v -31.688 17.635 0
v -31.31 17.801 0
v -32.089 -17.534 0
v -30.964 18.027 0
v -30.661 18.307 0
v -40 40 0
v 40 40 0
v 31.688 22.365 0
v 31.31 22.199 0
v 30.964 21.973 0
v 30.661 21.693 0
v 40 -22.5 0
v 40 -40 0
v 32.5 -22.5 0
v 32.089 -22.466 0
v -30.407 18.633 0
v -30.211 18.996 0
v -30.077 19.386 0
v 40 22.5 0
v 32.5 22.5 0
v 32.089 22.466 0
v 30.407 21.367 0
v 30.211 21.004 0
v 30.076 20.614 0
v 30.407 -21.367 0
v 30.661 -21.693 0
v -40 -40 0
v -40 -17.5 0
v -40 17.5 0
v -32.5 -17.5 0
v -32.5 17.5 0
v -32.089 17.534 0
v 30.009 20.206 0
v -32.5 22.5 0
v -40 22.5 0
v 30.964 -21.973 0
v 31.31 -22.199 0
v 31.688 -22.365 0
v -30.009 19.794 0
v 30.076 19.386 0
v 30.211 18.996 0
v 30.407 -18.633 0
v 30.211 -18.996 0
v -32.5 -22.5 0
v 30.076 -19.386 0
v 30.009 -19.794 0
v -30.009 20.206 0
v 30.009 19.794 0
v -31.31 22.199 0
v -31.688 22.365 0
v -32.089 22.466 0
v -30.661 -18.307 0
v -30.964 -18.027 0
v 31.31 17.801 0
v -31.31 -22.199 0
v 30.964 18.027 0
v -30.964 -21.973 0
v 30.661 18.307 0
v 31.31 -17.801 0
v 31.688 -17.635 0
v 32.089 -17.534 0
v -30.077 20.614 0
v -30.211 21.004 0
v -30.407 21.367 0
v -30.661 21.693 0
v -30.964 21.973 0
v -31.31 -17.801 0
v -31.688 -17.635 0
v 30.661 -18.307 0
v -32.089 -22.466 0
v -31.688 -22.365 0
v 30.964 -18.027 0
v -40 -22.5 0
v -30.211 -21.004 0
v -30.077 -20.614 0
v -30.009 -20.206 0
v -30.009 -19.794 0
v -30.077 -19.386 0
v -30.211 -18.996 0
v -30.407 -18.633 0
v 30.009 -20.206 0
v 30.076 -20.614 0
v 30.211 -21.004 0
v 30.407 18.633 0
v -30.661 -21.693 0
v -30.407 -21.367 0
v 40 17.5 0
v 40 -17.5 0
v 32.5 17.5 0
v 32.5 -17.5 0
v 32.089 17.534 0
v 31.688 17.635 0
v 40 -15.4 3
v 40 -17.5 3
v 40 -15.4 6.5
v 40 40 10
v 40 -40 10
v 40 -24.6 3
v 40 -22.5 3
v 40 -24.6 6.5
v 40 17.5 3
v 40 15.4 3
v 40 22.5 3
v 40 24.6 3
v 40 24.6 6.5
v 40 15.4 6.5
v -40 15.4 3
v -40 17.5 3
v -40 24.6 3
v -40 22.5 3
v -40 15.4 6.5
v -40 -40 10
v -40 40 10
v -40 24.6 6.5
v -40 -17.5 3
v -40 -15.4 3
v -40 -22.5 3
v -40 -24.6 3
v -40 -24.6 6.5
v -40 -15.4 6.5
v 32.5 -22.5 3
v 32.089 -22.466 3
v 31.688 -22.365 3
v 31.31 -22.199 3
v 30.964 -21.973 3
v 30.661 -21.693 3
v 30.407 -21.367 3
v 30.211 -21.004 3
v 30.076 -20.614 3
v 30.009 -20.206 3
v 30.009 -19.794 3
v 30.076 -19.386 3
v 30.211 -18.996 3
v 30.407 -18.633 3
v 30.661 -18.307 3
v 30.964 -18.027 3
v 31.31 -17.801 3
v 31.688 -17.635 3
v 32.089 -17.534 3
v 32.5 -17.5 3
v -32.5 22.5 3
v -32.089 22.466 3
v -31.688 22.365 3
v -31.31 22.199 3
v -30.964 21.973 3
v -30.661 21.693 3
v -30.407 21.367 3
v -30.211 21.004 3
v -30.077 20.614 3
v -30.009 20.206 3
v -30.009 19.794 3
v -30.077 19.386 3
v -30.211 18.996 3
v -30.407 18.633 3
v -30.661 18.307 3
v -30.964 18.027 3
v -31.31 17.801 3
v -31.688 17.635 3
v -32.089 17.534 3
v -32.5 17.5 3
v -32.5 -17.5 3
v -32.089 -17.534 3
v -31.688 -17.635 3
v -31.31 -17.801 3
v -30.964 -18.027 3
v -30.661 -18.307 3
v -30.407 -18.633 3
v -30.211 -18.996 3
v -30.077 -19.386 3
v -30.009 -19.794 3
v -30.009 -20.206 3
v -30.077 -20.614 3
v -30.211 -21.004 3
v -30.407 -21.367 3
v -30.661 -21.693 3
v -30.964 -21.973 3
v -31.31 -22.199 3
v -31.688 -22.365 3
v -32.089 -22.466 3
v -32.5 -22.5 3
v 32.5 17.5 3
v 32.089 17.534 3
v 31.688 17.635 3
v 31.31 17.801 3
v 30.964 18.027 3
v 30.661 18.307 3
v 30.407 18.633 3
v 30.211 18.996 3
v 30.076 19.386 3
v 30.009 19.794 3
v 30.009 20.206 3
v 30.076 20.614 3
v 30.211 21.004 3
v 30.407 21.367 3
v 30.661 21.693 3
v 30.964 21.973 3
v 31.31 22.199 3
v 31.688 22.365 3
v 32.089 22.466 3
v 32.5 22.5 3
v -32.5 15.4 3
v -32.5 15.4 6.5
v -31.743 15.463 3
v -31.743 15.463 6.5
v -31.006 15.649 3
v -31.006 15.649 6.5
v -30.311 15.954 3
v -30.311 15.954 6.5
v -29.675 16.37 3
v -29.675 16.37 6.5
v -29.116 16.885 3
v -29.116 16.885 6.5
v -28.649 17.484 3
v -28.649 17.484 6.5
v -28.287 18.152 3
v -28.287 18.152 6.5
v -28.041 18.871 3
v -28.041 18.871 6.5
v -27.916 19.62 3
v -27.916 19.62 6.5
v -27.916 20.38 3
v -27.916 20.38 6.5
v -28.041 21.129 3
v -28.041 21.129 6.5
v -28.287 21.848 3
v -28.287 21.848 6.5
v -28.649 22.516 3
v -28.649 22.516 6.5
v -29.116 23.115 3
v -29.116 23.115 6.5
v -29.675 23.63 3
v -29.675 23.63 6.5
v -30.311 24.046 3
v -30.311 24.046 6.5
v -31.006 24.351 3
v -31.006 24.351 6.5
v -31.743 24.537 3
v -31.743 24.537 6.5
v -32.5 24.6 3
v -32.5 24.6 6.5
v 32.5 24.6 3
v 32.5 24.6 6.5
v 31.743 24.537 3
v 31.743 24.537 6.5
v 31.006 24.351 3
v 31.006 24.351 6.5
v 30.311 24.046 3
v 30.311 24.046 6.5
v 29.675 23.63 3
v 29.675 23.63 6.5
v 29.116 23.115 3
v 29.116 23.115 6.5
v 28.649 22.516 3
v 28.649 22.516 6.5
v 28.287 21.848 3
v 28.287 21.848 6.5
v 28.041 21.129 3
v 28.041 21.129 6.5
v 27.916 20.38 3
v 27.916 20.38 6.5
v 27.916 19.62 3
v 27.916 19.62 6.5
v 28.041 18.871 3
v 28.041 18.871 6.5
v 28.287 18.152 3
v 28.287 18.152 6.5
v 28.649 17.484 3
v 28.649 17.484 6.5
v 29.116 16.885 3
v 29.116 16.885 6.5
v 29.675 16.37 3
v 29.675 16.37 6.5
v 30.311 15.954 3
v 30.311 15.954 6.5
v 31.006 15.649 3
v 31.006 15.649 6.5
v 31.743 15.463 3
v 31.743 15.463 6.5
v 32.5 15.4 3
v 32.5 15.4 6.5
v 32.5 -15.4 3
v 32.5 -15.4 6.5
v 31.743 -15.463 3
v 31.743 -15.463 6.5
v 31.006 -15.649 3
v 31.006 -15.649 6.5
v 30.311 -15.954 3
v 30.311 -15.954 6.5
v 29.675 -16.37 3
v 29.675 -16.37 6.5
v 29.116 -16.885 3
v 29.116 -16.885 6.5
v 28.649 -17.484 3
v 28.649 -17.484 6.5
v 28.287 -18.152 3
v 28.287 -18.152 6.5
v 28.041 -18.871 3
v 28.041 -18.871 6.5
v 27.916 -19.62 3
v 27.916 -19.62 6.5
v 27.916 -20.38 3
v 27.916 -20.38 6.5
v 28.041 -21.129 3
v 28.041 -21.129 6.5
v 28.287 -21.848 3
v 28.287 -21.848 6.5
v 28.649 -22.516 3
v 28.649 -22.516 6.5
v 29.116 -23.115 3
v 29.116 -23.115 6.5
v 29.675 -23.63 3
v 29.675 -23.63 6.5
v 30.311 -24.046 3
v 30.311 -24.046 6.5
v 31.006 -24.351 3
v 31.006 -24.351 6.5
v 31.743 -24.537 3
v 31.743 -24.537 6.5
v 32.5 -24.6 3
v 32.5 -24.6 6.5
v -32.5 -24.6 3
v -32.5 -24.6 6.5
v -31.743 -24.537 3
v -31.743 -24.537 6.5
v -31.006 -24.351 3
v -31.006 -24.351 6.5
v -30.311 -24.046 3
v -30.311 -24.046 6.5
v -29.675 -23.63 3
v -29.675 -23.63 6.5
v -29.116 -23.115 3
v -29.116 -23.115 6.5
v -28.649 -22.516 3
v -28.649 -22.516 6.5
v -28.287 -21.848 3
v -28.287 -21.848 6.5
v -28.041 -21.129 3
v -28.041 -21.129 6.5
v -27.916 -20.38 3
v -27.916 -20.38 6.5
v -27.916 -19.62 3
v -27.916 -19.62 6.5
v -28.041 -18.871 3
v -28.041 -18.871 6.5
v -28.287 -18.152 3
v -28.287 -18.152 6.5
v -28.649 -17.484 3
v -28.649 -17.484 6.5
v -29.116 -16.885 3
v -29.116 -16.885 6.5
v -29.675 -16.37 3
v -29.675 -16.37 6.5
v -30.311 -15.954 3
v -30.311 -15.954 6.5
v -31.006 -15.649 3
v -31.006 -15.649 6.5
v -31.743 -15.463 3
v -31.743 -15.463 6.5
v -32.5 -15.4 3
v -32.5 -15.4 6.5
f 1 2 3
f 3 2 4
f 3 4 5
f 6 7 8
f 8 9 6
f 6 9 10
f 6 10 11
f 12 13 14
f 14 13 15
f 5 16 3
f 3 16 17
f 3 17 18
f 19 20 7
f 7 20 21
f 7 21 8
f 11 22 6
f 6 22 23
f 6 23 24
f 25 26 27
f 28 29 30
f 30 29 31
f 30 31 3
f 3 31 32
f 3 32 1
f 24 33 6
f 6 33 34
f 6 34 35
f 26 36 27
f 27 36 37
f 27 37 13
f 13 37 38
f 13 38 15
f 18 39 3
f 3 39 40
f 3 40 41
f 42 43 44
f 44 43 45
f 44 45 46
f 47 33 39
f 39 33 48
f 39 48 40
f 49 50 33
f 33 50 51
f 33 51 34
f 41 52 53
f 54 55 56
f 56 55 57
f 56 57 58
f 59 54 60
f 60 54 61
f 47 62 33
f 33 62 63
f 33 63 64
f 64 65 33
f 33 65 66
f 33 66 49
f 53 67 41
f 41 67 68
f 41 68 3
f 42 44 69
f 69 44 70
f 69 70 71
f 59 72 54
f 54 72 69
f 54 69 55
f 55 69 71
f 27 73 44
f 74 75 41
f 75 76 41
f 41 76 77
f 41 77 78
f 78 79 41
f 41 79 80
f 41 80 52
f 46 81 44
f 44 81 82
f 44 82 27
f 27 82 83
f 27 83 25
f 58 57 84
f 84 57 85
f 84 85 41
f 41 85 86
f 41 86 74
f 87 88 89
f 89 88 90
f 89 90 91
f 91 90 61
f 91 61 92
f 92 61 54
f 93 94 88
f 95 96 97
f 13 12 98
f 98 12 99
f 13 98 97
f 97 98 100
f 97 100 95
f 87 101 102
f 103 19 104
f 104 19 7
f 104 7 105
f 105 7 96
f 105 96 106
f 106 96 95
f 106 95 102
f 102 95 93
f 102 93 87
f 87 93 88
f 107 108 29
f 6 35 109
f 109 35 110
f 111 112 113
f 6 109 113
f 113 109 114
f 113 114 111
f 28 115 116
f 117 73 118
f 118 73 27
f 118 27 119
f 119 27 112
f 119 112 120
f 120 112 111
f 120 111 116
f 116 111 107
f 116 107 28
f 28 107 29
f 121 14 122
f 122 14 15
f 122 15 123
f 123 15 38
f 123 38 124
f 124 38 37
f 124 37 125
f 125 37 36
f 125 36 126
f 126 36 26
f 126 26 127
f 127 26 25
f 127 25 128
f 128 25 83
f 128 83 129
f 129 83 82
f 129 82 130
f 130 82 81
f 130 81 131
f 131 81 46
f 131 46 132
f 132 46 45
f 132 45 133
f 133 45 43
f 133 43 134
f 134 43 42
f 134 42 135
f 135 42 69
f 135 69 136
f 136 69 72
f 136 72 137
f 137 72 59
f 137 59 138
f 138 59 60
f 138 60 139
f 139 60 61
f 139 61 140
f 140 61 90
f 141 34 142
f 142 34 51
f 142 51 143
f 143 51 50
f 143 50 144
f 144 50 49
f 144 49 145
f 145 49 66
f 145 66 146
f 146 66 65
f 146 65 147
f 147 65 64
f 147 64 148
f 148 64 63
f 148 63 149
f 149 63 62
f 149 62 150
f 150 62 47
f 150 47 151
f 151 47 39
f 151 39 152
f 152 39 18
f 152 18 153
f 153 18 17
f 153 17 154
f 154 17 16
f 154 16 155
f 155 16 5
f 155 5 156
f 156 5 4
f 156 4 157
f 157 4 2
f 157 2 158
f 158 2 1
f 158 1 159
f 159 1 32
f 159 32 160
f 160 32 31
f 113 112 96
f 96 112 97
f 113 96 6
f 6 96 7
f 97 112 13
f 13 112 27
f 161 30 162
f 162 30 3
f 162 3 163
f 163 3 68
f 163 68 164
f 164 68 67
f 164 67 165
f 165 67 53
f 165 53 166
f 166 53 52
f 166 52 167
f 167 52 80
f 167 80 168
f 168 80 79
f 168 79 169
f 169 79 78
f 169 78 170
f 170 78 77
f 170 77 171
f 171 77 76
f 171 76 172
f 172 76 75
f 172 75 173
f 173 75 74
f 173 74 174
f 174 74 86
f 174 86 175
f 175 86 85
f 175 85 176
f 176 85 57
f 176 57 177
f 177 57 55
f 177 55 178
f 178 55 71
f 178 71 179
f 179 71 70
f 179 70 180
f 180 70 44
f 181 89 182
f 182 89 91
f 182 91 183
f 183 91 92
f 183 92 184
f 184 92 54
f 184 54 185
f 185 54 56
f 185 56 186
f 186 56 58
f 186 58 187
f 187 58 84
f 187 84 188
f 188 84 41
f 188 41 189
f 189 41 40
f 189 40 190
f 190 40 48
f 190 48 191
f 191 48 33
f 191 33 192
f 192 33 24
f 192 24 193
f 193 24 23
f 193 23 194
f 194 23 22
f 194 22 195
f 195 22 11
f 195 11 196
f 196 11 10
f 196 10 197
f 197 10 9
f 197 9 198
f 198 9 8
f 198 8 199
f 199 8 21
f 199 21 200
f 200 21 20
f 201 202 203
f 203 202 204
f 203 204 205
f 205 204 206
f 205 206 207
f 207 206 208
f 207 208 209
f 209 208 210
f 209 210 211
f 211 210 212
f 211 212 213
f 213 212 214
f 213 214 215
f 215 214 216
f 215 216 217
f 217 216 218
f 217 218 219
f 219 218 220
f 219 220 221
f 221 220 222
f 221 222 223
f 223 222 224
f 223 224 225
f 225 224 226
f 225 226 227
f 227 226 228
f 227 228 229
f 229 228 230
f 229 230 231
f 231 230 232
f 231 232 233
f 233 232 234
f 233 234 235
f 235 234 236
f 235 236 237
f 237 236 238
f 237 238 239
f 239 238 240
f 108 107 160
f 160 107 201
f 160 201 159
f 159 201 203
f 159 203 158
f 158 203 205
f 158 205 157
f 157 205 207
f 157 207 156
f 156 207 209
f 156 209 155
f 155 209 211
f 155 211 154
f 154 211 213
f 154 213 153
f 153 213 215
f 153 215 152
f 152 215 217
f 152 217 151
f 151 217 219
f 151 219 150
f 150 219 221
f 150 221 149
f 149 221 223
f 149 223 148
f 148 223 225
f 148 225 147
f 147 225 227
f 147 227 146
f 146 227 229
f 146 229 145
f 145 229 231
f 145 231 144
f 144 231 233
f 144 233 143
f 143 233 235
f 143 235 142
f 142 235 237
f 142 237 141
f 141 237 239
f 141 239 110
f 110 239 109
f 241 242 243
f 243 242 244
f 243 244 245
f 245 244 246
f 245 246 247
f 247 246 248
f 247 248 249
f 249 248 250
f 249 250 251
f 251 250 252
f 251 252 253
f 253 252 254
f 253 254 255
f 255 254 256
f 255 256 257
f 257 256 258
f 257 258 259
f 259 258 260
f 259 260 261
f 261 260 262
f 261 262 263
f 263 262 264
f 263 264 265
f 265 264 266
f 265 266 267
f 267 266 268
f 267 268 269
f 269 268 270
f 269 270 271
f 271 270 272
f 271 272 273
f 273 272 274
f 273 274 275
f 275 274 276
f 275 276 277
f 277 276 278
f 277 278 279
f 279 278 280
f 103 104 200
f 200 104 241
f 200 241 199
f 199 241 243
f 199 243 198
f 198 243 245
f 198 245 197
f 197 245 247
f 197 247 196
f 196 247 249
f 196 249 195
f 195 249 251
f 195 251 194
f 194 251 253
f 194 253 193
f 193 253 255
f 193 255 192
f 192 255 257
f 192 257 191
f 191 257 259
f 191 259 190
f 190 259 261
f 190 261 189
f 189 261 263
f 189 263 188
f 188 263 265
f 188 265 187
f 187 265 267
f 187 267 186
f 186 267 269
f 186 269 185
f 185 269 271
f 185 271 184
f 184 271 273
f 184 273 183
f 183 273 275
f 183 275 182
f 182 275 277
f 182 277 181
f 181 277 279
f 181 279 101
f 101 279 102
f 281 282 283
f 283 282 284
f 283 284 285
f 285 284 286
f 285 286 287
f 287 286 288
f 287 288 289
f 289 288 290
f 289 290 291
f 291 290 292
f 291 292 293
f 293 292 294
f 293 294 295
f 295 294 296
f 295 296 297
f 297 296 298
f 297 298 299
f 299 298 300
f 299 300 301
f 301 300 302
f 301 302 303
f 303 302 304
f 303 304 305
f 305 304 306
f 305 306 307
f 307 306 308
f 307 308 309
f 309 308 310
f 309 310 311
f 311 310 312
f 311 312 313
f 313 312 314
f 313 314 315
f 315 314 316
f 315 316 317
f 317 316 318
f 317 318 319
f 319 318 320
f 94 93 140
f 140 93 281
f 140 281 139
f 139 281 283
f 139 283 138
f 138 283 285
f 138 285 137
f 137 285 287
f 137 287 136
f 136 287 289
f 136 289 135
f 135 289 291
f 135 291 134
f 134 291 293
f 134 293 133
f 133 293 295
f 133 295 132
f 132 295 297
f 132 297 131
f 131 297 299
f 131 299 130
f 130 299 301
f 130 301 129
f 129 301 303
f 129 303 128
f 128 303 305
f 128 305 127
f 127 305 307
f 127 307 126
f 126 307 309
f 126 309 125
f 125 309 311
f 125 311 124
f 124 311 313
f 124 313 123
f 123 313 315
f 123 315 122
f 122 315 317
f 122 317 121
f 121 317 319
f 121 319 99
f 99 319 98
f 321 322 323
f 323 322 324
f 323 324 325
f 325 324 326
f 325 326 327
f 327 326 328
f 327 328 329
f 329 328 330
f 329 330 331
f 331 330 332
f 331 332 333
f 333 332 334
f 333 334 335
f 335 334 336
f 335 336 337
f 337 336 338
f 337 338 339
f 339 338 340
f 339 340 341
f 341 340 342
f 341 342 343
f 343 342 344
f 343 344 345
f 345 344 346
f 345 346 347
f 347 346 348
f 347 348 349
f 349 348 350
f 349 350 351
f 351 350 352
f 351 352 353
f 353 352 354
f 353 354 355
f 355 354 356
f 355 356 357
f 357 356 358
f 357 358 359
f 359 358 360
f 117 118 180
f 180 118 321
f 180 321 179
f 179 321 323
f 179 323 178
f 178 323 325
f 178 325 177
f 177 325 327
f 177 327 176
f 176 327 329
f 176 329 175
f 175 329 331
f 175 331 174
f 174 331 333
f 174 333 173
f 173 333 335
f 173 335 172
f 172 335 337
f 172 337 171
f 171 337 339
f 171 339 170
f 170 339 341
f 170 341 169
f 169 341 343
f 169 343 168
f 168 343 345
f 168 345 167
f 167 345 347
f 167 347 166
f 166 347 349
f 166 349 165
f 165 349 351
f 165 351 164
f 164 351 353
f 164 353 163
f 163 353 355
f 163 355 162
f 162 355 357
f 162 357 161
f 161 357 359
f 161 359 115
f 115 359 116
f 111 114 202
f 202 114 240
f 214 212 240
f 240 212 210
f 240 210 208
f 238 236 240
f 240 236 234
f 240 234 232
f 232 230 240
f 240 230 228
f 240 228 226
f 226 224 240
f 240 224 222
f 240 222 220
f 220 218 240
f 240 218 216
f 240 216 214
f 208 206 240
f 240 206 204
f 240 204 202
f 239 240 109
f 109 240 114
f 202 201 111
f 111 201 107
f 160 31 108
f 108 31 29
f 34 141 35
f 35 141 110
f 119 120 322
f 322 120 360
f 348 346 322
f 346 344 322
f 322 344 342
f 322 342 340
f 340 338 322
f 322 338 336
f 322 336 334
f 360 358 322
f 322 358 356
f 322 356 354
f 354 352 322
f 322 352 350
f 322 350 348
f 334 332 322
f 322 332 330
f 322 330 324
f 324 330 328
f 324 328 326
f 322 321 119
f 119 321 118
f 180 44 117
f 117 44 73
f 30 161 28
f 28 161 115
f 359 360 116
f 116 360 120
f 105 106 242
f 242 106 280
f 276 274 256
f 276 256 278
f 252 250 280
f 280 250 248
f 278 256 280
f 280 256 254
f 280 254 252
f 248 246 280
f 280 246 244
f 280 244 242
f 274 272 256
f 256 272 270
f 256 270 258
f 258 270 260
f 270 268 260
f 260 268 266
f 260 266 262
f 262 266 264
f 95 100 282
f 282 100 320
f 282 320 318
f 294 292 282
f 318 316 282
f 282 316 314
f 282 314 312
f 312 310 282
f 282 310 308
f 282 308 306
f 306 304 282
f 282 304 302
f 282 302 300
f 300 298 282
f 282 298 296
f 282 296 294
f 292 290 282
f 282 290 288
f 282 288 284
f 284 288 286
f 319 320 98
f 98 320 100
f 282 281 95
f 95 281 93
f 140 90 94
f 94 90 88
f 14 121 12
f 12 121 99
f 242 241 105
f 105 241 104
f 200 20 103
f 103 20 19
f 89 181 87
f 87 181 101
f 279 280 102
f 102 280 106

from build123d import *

# Parameters (mm, degrees)
ESQUISSE1_W             = 80
ESQUISSE1_H             = 80
ESQUISSE1_R             = 2.5
BOSS_EXTRU_1_DEPTH      = 10
ESQUISSE2_R             = 4.6
ENL_V_MAT_EXTRU_1_DEPTH = 7
ENL_V_MAT_EXTRU_2_DEPTH = 7.5
ESQUISSE5_R             = 4.6
BOSS_EXTRU_2_DEPTH      = 3.5
SYM_TRIE4_COPY_1_DEPTH  = 7.5


with BuildPart() as part:
    # Esquisse1 → Boss.-Extru.1 (new body)
    with BuildSketch(Plane.XY):
        Rectangle(ESQUISSE1_W, ESQUISSE1_H)
        with Locations((-32.5, 20)):
            Circle(ESQUISSE1_R, mode=Mode.SUBTRACT)
        with Locations((-32.5, -20)):
            Circle(ESQUISSE1_R, mode=Mode.SUBTRACT)
        with Locations((32.5, -20)):
            Circle(ESQUISSE1_R, mode=Mode.SUBTRACT)
        with Locations((32.5, 20)):
            Circle(ESQUISSE1_R, mode=Mode.SUBTRACT)
    extrude(amount=BOSS_EXTRU_1_DEPTH)

    # Esquisse2 → Enlèv. mat.-Extru.1 (cut)
    with BuildSketch(Plane.XY.offset(10)):
        with Locations((-32.5, 20)):
            Circle(ESQUISSE2_R)
        with Locations(Location((-32.5, -20, 0), (0, 0, 180))):
            Circle(ESQUISSE2_R)
        with Locations((32.5, -20)):
            Circle(ESQUISSE2_R)
        with Locations(Location((32.5, 20, 0), (0, 0, 180))):
            Circle(ESQUISSE2_R)
    extrude(amount=-ENL_V_MAT_EXTRU_1_DEPTH, mode=Mode.SUBTRACT)

    # Esquisse4 → Enlèv. mat.-Extru.2 (cut)
    with BuildSketch(Plane.ZY.offset(40)):
        Polygon((6.5, 24.6), (6.5, 15.4), (3, 15.4), (3, 17.5), (0, 17.5), (0, 22.5), (3, 22.5), (3, 24.6), align=None)
    enl_v_mat_extru_2 = extrude(amount=-ENL_V_MAT_EXTRU_2_DEPTH, mode=Mode.SUBTRACT)

    # Symétrie1: Enlèv. mat.-Extru.2 across plane
    add(enl_v_mat_extru_2.mirror(Plane.ZX), mode=Mode.SUBTRACT)

    # Esquisse5 → Boss.-Extru.2 (add)
    with BuildSketch(Plane.XY.offset(10)):
        with Locations((-32.5, 20)):
            Circle(ESQUISSE5_R)
        with Locations(Location((32.5, 20, 0), (0, 0, 90))):
            Circle(ESQUISSE5_R)
        with Locations((32.5, -20)):
            Circle(ESQUISSE5_R)
        with Locations((-32.5, -20)):
            Circle(ESQUISSE5_R)
    extrude(amount=-BOSS_EXTRU_2_DEPTH)

    # Symétrie4: Enlèv. mat.-Extru.2 across plane
    add(enl_v_mat_extru_2.mirror(Plane(origin=(0, 0, 0), x_dir=(0, 0, 1), z_dir=(1, 0, 0))), mode=Mode.SUBTRACT)

    # Symétrie4 copy 1 sketch → Symétrie4 copy 1 (cut)
    with BuildSketch(Plane(origin=(40, 0, 0), x_dir=(0, 0, 1), z_dir=(1, 0, 0))):
        Polygon((6.5, 24.6), (6.5, 15.4), (3, 15.4), (3, 17.5), (0, 17.5), (0, 22.5), (3, 22.5), (3, 24.6), align=None)
    extrude(amount=-SYM_TRIE4_COPY_1_DEPTH, mode=Mode.SUBTRACT)


solid = part.part
